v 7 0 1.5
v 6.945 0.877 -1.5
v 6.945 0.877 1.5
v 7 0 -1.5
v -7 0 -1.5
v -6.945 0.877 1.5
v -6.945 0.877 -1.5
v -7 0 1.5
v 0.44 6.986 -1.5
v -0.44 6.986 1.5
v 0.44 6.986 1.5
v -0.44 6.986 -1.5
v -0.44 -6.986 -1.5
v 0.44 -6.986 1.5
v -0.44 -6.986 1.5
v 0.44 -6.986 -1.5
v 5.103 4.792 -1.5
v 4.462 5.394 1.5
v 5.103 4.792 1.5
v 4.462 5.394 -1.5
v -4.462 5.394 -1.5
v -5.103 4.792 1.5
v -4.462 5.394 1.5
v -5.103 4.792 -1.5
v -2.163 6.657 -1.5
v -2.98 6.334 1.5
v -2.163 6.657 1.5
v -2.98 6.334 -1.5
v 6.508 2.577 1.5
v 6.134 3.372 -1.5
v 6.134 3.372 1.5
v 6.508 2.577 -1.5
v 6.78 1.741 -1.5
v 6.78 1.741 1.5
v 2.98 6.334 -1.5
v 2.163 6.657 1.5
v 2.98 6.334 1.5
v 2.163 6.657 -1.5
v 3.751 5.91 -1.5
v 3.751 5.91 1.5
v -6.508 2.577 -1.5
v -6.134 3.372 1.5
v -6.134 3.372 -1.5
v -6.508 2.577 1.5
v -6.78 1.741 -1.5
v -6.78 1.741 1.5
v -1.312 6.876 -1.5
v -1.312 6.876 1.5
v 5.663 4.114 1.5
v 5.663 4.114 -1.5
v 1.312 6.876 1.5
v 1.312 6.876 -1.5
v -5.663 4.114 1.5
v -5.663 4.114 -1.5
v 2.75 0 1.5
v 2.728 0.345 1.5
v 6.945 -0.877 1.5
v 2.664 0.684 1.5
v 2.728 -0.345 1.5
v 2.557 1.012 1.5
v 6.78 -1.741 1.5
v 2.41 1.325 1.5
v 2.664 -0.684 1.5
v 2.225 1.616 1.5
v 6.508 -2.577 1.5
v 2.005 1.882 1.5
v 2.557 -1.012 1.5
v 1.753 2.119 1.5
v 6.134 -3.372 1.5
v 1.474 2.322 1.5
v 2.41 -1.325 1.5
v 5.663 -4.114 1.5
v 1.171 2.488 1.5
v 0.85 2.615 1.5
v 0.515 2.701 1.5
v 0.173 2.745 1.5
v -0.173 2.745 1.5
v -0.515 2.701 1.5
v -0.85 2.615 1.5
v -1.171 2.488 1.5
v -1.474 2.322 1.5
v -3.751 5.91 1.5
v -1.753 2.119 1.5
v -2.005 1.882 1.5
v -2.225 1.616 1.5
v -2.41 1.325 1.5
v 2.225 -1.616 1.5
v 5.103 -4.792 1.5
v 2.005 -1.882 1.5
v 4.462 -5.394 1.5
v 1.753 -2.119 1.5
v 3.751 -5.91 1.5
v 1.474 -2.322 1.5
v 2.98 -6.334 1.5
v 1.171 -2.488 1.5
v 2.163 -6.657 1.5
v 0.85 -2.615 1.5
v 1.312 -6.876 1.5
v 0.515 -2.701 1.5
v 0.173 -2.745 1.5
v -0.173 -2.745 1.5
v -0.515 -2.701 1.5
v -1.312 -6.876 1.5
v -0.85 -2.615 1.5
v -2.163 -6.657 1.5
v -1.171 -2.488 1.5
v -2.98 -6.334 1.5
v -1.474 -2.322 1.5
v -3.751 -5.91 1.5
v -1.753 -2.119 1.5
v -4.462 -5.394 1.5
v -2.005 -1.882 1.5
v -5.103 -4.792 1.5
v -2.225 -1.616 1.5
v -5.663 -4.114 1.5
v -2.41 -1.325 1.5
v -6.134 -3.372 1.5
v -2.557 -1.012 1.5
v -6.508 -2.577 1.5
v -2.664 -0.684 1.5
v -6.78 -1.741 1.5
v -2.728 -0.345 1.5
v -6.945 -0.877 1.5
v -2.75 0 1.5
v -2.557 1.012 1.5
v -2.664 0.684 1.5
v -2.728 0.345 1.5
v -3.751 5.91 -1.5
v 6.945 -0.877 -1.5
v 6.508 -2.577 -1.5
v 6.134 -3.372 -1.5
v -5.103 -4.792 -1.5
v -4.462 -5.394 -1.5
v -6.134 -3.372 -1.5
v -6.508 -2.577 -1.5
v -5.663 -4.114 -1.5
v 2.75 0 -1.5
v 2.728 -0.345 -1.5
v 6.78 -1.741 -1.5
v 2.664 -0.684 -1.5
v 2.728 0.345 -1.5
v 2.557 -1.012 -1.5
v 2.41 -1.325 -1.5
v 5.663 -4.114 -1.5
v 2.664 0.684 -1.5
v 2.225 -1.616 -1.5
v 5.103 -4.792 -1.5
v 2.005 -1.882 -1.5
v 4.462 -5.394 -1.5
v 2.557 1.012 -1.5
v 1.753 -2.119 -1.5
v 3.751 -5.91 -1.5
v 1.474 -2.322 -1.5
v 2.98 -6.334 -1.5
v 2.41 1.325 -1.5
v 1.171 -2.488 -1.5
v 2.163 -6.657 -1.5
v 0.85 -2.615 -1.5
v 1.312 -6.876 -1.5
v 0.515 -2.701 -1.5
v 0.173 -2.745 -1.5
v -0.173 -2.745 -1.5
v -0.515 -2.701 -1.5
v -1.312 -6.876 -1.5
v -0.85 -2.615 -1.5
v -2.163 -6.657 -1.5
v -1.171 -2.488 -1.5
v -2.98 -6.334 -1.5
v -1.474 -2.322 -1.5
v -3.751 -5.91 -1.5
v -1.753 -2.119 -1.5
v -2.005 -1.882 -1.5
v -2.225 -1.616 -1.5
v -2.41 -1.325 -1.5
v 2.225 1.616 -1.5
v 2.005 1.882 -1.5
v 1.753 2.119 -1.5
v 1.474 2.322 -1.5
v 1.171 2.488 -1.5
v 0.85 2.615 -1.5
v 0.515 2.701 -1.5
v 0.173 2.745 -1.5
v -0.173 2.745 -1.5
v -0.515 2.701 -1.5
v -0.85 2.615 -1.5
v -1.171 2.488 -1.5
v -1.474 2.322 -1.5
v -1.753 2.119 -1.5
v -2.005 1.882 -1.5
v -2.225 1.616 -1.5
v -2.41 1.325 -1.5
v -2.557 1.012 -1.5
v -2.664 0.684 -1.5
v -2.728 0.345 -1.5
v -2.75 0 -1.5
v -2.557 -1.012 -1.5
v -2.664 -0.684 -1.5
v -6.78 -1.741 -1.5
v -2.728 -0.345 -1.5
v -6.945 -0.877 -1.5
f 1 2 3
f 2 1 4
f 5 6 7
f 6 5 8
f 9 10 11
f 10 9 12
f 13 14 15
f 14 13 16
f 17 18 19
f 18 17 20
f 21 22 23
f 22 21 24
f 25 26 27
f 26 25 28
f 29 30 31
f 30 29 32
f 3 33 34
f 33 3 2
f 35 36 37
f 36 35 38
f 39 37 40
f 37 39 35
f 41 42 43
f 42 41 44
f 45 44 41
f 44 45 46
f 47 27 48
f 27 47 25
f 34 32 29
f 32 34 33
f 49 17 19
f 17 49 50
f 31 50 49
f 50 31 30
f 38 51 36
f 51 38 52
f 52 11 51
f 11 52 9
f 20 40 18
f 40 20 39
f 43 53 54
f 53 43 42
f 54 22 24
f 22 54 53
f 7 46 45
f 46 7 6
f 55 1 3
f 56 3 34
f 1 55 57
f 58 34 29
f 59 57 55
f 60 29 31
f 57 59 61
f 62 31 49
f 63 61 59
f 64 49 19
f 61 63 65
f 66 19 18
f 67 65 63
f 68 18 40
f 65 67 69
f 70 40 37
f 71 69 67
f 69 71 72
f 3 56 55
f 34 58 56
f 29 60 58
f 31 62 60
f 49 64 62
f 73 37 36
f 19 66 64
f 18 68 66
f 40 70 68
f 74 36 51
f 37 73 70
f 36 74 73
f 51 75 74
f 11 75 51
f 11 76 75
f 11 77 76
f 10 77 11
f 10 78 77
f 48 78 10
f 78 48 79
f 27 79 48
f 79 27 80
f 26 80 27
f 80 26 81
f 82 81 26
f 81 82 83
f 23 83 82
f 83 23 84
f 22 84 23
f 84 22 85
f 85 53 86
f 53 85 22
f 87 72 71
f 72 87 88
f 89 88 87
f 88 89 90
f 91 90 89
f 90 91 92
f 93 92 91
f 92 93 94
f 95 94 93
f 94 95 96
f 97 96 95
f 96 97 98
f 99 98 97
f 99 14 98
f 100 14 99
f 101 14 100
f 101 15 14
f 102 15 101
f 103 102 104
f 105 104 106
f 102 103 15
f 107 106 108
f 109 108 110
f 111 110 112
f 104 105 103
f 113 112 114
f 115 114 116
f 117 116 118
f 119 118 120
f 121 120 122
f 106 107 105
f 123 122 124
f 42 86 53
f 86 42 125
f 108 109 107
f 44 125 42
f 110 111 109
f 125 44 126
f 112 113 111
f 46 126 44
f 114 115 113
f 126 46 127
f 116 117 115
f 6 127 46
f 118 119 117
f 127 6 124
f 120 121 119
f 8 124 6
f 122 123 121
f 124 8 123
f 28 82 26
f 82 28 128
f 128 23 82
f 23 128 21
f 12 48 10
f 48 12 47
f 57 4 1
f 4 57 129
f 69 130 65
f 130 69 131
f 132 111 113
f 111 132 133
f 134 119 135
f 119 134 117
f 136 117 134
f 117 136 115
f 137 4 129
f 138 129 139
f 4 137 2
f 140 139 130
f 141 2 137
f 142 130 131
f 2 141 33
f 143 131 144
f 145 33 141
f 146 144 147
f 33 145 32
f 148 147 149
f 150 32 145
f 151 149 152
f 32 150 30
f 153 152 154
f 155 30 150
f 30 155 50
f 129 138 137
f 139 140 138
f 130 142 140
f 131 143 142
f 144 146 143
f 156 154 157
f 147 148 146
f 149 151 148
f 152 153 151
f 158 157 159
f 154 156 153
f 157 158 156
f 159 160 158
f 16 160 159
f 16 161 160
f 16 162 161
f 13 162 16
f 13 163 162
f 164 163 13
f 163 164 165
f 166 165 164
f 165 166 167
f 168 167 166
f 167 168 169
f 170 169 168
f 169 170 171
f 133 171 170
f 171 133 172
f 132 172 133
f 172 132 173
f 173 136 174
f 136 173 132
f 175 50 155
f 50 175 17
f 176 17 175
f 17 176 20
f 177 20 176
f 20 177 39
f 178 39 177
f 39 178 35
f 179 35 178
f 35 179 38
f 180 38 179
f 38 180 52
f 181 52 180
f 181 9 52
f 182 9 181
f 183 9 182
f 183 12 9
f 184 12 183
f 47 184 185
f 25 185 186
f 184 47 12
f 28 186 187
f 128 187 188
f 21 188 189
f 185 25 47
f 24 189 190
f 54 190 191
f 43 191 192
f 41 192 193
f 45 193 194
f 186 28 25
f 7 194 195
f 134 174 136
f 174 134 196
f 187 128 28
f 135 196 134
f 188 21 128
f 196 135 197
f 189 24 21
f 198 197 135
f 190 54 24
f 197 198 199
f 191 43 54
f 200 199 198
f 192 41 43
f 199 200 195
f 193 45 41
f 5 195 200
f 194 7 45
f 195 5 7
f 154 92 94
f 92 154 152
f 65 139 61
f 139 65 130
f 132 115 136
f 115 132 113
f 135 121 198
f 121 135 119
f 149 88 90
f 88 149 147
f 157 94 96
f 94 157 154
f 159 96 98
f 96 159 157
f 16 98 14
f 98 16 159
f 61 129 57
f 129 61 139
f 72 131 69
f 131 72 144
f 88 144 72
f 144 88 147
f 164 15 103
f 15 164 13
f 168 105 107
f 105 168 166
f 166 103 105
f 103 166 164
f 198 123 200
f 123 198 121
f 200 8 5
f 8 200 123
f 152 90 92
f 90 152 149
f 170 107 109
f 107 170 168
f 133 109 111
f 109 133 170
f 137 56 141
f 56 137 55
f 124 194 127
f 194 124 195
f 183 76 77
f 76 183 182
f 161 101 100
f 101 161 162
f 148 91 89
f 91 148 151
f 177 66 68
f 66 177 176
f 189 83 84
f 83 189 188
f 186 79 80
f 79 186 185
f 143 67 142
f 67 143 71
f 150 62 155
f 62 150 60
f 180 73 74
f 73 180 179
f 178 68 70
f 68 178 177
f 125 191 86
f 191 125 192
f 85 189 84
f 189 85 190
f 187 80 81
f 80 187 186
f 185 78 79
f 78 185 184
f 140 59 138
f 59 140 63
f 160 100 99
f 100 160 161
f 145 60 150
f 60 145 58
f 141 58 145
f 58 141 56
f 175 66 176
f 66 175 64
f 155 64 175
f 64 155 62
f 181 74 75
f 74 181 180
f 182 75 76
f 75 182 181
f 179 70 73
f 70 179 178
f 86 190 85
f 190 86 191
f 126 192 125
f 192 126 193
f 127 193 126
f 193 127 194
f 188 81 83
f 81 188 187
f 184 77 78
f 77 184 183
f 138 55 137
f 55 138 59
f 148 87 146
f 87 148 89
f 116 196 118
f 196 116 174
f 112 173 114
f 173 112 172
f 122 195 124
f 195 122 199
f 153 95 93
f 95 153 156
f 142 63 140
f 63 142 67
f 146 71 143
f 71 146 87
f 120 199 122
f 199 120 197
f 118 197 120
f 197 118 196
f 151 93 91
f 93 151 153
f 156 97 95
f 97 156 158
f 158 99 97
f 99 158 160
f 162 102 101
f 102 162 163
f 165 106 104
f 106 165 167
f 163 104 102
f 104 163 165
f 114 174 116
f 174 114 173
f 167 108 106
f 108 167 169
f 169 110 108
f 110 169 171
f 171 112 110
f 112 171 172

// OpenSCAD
$fn = 50;


difference() {
	union() {
		translate(v = [0, 0, -1.5000000000]) {
			cylinder(h = 3, r = 7.0000000000);
		}
	}
	union() {
		translate(v = [0, 0, -100.0000000000]) {
			cylinder(h = 200, r = 2.7500000000);
		}
	}
}
